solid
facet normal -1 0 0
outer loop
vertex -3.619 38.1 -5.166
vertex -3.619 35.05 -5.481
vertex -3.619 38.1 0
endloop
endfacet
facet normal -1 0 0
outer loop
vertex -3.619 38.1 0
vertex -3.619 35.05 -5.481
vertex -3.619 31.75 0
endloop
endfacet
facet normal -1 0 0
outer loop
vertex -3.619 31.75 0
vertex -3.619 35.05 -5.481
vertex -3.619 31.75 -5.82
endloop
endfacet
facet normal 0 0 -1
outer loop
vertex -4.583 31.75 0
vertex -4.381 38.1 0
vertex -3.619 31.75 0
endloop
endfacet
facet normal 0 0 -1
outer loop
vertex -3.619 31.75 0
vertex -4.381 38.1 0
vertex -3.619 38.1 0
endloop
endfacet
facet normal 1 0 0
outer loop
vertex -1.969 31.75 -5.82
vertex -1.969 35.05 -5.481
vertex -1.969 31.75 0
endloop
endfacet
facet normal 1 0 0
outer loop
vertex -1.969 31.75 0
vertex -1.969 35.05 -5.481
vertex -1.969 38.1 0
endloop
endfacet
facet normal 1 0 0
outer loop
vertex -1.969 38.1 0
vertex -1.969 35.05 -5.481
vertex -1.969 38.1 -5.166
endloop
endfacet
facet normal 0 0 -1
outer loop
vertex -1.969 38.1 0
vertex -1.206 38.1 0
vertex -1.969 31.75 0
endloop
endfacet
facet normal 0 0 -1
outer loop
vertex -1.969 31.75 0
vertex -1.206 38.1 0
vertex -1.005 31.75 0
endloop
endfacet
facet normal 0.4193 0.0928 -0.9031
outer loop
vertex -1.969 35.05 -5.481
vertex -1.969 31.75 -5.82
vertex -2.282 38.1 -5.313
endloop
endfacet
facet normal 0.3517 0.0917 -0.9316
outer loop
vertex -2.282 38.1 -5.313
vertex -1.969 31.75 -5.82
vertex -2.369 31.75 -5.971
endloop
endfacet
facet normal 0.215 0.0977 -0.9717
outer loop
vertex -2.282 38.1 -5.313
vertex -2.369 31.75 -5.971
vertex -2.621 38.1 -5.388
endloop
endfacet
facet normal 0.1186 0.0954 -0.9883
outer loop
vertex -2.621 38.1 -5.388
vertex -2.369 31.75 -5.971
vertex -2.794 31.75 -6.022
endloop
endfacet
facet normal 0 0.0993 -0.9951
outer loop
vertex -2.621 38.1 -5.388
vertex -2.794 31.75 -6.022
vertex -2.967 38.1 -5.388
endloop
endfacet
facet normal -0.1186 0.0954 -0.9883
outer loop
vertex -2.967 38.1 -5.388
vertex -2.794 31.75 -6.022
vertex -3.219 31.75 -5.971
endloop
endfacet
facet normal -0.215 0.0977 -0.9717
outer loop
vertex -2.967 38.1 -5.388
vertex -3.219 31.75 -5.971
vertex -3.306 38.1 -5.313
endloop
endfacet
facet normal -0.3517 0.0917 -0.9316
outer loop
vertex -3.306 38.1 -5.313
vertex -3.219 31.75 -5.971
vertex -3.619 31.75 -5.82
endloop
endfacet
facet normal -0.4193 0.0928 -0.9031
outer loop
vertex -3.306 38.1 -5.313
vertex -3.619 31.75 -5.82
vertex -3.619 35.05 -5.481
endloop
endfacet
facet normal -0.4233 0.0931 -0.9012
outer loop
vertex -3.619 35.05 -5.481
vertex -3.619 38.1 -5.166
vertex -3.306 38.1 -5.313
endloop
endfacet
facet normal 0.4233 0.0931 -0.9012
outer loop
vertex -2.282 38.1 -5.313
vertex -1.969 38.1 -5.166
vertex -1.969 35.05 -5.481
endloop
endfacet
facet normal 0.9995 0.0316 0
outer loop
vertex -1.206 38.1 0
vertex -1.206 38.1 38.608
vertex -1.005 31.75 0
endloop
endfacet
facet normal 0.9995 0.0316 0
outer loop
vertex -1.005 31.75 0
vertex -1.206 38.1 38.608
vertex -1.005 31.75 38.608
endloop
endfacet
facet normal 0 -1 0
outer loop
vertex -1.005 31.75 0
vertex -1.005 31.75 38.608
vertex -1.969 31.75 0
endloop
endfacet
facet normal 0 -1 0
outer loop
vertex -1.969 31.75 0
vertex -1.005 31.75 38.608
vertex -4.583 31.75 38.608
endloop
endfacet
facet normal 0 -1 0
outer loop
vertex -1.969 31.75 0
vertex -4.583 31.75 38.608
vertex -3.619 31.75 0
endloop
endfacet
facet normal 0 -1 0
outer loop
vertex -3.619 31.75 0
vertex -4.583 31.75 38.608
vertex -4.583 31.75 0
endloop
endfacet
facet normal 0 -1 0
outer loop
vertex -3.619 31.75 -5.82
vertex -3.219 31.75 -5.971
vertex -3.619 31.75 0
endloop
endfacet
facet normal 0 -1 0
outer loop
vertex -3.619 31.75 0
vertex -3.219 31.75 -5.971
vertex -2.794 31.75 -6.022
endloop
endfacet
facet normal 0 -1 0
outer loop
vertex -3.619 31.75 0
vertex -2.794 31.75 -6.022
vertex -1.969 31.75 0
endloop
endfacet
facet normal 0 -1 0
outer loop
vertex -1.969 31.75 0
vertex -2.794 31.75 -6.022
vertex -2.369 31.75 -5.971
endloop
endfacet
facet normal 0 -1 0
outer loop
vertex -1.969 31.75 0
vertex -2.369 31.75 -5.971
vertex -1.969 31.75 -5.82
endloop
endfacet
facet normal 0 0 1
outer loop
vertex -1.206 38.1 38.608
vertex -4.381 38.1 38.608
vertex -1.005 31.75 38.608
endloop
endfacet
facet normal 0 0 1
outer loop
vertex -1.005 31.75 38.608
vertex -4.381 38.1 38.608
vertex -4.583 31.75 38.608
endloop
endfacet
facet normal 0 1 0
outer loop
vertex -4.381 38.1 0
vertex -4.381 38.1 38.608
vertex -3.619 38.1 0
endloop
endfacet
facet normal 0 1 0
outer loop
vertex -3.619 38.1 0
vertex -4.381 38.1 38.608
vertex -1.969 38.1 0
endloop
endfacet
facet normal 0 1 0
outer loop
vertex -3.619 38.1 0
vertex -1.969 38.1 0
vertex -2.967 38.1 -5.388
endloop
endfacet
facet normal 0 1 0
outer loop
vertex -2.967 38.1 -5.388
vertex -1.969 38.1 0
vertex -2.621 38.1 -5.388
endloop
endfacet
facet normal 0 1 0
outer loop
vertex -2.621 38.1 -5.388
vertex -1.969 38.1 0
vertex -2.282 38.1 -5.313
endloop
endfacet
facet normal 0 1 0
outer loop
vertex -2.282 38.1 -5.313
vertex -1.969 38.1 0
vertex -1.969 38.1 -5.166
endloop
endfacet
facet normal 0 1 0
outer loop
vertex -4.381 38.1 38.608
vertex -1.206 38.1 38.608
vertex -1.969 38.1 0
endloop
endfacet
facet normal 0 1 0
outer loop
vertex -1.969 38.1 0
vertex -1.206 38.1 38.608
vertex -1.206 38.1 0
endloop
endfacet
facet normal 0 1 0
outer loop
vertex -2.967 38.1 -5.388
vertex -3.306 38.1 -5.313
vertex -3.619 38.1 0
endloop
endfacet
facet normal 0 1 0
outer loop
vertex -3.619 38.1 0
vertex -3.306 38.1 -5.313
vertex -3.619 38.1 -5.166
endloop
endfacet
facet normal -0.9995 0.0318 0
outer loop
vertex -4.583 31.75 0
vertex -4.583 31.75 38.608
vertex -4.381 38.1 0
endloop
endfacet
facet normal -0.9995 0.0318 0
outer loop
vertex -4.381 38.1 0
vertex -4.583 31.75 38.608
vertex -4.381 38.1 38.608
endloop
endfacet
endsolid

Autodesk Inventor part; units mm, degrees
ref_plane "YZ Plane" through (0, 0, 0) normal (1, 0, 0) x (0, 1, 0)
ref_plane "XY Plane" through (0, 0, 0) normal (0, 0, 1) x (1, 0, 0)
sketch "Sketch6" plane through (0, 0, 0) normal (0, 1, 0) x (-1, 0, 0)
  line L0 (0, 0) -> (5.588, 0)
  line L1 (5.588, 0) -> (5.588, -6.35)
  line L2 (5.588, -6.35) -> (0, -6.35)
  line L3 (0, -6.35) -> (0, 0)
  arc A0 (0, -6.35) -> (5.588, -6.35) centre (2.794, -6.35) ccw
  dimension "d25" = 5.588
  dimension "d26" = 6.35
ref_plane "Work Plane1" through (0, 38.1, 0) normal (0, 1, 0) x (-1, 0, 0)
sketch "Sketch8" plane through (0, 38.1, 0) normal (0, 1, 0) x (-1, 0, 0)
  line L0 (4.3815, 0) -> (1.2065, 0)
  line L1 (1.2065, 0) -> (1.2065, -3.81)
  line L2 (1.2065, -3.81) -> (4.3815, -3.81)
  line L3 (4.3815, -3.81) -> (4.3815, 0)
  arc A0 (1.2065, -3.81) -> (4.3815, -3.81) centre (2.794, -3.81) ccw
  point P0 (0, 0)
  dimension "d27" = 3.175
  dimension "d28" = 3.81
  dimension "d49" = 1.2065
loft "Loft1" add profiles "Sketch6", "Sketch8"
sketch "Sketch9" plane through (-5.588, 0, 0) normal (0, 0, 1) x (1, 0, 0)
  line L0 (0, 0) -> (5.588, 0) projected
  line L1 (5.588, 0) -> (4.3815, 38.1) projected
  line L2 (1.2065, 38.1) -> (4.3815, 38.1) projected
  line L3 (0, 0) -> (1.2065, 38.1) projected
  line L4 (4.3815, 38.1) -> (5.588, 0) projected
  line L5 (4.5826, 31.75) -> (1.0054, 31.75)
  line L6 (0, 0) -> (1.2065, 38.1) projected
  dimension "d34" = 6.35
extrude "Extrusion5" add sketch "Sketch9" along normal blind 38.608 contours L3 L2 L1 L5
sketch "Sketch12" plane through (-2.794, 0, -6.35) normal (0, -1, 0) x (1, 0, 0)
  circle A0 centre (0, 1.9685) radius 1.27
  arc A1 (-2.794, 0) -> (2.794, 0) centre (0, 0) ccw projected
  line L0 (0, -2.794) -> (0, 1.9685)
  point P0 (2.794, 6.35)
  dimension "d44" = 2.54
  dimension "d46" = 4.7625
extrude "Extrusion8" cut sketch "Sketch12" against normal blind 10.16
sketch "Sketch13" plane through (-5.588, 0, 0) normal (0, 0, 1) x (1, 0, 0)
  line L0 (1.2065, 38.1) -> (4.3815, 38.1) projected
  line L1 (3.6195, 38.1) -> (1.9685, 38.1)
  line L2 (1.9685, 38.1) -> (1.9685, 31.75)
  line L3 (1.9685, 31.75) -> (3.6195, 31.75)
  line L4 (3.6195, 31.75) -> (3.6195, 38.1)
  line L5 (3.6195, 31.75) -> (4.5826, 31.75) construction
  line L6 (4.3815, 38.1) -> (5.588, 0) construction
  line L7 (1.9685, 31.75) -> (1.0054, 31.75) construction
  line L8 (0, 0) -> (1.2065, 38.1) construction
  line L9 (10.391, 31.75) -> (-0.9915, 31.75)
  line L10 (-0.9915, 31.75) -> (-0.9915, -4.8332)
  line L11 (-0.9915, -4.8332) -> (10.391, -4.8332)
  line L12 (10.391, -4.8332) -> (10.391, 31.75)
  line L13 (1.9685, 38.1) -> (1.2065, 38.1)
  line L14 (1.9685, 31.75) -> (1.0054, 31.75)
  line L15 (1.0054, 31.75) -> (1.2065, 38.1)
  line L16 (3.6195, 38.1) -> (4.3815, 38.1)
  line L17 (4.3815, 38.1) -> (4.5826, 31.75)
  line L18 (3.6195, 31.75) -> (4.5826, 31.75)
  dimension "d50" = 1.651
  dimension "d51" = 6.35
extrude "Extrusion11" cut sketch "Sketch13" against normal through all contours L0 L2 L9 L15 | L0 L17 L9 L4
extrude "Extrusion12" cut sketch "Sketch13" against normal through all contours L9 L3 L12 L11 L10
properties part number "RudderStabilizingFinBottom_Print2"
